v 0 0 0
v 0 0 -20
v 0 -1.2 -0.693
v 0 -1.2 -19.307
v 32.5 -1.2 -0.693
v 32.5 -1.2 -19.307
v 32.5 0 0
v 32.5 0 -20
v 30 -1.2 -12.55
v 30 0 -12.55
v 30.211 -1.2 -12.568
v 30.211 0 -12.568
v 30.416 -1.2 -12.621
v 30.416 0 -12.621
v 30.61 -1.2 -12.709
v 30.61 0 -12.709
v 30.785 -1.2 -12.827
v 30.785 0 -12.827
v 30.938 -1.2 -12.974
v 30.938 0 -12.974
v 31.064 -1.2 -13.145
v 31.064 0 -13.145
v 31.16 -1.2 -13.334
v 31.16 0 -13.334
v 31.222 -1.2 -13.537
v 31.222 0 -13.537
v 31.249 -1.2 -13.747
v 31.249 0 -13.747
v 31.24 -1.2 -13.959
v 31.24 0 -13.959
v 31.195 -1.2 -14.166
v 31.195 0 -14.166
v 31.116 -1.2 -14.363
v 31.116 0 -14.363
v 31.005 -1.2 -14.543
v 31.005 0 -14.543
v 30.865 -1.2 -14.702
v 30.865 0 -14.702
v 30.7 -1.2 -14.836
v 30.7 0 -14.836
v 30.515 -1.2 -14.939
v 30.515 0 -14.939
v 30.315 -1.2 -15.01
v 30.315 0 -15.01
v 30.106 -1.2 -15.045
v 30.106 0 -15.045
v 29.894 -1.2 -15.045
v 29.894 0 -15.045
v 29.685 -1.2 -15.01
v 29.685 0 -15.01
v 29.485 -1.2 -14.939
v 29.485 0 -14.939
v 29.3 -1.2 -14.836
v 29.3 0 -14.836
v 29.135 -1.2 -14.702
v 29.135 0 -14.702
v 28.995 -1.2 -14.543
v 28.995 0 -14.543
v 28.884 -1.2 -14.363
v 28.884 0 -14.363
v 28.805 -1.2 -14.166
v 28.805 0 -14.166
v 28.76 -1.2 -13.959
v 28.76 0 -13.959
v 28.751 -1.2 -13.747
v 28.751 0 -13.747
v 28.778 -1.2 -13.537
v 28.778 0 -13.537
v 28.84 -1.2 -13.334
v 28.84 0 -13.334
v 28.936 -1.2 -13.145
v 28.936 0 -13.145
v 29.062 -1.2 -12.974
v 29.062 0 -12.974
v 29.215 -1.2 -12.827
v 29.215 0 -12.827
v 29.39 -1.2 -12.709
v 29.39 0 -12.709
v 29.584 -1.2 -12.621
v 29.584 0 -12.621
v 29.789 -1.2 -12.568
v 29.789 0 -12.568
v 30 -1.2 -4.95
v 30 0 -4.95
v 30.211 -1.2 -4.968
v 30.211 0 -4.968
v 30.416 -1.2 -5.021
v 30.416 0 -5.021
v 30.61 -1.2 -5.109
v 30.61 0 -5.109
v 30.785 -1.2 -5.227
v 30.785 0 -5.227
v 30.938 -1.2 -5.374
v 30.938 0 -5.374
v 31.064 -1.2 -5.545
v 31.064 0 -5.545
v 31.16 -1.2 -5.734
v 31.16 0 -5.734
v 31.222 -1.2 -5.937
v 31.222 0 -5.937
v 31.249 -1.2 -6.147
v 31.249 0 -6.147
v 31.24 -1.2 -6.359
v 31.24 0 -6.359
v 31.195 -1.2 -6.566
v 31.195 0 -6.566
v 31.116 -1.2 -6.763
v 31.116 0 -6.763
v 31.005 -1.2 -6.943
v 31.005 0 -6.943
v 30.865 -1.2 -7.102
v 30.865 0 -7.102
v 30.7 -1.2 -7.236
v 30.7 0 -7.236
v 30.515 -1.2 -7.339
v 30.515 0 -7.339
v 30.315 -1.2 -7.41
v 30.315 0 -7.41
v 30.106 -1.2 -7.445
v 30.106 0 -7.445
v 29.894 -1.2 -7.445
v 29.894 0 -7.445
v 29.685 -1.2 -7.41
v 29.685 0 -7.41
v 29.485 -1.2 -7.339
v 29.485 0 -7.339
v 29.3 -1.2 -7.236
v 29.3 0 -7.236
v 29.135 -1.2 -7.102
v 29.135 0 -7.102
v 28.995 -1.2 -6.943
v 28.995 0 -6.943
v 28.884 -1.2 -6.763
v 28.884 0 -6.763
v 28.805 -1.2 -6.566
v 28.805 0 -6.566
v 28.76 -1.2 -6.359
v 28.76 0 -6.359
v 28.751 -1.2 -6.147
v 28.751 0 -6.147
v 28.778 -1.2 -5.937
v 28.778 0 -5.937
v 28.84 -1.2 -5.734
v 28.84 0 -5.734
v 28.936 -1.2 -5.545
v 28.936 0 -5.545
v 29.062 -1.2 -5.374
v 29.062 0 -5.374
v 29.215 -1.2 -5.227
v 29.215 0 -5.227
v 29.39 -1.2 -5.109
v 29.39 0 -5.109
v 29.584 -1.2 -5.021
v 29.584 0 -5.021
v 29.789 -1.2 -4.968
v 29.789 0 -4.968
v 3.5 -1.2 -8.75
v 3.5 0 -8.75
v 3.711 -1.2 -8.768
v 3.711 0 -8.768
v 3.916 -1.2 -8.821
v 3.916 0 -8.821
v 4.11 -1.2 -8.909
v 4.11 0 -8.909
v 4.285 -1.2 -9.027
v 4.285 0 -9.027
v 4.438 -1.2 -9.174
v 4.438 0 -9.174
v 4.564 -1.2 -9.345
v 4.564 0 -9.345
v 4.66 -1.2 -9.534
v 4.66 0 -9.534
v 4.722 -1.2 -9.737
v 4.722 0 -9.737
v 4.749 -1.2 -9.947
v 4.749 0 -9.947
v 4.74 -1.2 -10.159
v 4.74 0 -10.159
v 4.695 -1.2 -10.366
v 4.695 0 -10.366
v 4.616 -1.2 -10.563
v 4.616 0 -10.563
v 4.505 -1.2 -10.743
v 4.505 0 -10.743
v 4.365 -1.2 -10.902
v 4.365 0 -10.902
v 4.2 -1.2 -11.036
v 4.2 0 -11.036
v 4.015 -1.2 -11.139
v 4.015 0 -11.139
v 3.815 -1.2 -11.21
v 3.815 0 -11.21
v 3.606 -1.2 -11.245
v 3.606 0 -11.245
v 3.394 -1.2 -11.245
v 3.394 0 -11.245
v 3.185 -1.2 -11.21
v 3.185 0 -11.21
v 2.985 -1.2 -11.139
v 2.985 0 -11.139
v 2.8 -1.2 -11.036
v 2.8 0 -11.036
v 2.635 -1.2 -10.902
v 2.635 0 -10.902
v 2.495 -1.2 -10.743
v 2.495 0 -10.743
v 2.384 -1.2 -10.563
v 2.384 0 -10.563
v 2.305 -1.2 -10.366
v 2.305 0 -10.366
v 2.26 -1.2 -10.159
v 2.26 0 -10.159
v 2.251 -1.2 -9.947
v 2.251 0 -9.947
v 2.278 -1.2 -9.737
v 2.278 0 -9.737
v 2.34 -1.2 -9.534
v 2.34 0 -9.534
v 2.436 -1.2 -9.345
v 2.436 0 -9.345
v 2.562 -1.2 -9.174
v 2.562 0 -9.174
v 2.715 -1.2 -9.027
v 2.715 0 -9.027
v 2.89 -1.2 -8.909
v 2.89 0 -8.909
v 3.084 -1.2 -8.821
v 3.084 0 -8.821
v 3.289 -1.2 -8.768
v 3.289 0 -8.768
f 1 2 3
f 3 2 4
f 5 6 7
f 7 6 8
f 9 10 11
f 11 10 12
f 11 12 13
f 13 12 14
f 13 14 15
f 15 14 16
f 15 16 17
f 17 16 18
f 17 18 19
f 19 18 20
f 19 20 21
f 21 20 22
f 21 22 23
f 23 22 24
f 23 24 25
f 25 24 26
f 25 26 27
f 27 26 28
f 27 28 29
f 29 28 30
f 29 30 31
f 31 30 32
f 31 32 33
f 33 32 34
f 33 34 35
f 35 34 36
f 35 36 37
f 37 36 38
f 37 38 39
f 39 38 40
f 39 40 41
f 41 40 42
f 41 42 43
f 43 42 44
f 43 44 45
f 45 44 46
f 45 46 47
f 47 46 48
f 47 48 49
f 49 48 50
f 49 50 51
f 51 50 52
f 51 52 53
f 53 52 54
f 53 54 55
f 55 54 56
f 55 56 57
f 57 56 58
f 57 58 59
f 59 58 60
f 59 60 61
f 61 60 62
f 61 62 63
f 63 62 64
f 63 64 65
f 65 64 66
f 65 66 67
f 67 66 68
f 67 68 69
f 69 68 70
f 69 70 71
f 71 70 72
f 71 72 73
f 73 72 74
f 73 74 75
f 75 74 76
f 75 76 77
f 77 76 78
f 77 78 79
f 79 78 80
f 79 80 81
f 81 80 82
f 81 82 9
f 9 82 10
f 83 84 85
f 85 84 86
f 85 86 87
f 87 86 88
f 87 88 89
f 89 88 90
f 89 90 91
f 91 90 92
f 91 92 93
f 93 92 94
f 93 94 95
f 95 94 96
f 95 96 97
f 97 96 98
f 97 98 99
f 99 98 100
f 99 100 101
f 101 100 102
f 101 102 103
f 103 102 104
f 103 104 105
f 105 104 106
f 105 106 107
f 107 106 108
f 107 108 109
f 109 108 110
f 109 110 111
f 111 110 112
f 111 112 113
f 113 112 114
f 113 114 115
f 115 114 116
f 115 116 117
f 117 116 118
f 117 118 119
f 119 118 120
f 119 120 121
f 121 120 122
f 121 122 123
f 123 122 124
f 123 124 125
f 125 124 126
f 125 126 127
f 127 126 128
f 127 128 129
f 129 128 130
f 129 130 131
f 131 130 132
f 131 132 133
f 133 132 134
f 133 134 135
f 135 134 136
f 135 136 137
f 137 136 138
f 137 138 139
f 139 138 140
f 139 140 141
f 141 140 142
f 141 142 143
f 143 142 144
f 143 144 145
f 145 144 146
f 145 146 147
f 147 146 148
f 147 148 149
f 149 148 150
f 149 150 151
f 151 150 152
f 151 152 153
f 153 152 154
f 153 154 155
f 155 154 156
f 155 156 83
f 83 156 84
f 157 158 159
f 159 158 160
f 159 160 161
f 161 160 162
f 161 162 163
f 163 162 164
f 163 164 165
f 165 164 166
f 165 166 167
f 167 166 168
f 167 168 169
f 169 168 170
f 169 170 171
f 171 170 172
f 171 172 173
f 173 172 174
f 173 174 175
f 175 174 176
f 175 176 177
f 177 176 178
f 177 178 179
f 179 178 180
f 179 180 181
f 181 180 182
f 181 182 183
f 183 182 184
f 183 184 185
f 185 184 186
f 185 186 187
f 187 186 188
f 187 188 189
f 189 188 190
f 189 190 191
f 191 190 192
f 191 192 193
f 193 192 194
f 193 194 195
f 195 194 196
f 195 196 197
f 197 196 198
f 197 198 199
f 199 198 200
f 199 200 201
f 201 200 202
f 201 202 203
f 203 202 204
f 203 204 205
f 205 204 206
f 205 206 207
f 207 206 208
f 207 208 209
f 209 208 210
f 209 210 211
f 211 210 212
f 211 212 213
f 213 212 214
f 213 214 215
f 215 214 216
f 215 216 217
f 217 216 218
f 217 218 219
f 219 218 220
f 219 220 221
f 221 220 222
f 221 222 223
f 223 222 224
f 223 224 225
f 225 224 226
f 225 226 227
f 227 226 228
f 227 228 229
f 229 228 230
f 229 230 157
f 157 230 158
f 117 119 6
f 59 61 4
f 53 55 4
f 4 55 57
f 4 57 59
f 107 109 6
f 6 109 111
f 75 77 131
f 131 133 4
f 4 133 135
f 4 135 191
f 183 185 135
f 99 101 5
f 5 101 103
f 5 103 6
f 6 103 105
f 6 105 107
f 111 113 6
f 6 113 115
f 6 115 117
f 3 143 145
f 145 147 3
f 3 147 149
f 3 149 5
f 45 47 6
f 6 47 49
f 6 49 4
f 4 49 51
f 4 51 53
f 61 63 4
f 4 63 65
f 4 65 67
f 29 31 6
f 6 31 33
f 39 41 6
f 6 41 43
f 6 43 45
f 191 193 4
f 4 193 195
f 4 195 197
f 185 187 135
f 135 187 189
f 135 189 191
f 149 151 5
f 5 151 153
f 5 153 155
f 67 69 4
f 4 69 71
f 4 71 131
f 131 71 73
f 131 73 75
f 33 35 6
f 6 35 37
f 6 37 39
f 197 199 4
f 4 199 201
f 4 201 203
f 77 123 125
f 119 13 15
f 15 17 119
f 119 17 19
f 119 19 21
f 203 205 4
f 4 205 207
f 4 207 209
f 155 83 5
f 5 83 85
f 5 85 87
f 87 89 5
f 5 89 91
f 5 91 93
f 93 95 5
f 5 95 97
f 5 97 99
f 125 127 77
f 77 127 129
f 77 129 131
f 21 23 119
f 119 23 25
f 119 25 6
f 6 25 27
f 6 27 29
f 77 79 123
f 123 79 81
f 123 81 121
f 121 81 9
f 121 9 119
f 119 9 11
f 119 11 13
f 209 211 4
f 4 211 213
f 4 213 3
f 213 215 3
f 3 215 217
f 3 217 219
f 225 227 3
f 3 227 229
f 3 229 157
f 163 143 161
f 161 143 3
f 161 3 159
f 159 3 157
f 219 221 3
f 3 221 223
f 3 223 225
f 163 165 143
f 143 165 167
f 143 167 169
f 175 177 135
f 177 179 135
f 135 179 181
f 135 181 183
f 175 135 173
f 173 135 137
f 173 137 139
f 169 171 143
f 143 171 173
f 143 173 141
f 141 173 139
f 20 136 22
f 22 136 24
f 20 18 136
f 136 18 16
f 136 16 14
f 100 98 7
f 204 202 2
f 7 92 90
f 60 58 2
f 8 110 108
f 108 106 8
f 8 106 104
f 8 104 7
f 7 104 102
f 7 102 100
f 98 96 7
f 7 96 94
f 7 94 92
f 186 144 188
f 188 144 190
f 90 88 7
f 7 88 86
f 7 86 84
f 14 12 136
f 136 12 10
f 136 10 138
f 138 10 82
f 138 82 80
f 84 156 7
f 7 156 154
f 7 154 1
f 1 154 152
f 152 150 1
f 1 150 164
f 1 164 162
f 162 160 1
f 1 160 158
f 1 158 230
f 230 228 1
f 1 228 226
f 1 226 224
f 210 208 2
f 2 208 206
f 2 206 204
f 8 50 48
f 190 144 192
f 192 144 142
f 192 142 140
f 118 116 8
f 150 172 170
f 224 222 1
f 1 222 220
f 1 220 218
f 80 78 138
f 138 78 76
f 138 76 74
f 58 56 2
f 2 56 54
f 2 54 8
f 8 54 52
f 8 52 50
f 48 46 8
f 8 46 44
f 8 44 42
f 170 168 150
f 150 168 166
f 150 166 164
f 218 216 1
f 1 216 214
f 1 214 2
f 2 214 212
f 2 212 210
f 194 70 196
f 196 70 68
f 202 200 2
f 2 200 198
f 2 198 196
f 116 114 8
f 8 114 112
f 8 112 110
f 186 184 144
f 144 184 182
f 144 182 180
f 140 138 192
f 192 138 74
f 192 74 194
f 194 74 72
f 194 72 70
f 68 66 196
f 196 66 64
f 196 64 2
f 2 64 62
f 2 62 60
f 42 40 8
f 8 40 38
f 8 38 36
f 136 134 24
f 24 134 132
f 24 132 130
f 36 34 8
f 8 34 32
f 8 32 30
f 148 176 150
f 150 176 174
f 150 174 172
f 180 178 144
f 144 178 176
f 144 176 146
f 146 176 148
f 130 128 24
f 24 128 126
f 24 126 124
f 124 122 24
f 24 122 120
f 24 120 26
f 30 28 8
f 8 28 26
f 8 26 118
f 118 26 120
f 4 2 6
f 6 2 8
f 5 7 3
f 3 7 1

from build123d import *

# Parameters (mm, degrees)
SKETCH1_W           = 32.5
SKETCH1_H           = 20
SKETCH1_R           = 1.25
BOSS_EXTRUDE1_DEPTH = 1.2
CHAMFER1_SIZE       = 1.2
CHAMFER1_SIZE_2     = 0.692820323
CHAMFER2_SIZE       = 1.2
CHAMFER2_SIZE_2     = 0.692820323


with BuildPart() as part:
    # Sketch1 → Boss-Extrude1 (new body)
    with BuildSketch(Plane(origin=(0, 0, 0), x_dir=(1, 0, 0), z_dir=(0, 1, 0))):
        with Locations((16.25, 10)):
            Rectangle(SKETCH1_W, SKETCH1_H)
        with Locations(Location((30, 6.2, 0), (0, 0, 270))):
            Circle(SKETCH1_R, mode=Mode.SUBTRACT)
        with Locations(Location((30, 13.8, 0), (0, 0, 270))):
            Circle(SKETCH1_R, mode=Mode.SUBTRACT)
        with Locations(Location((3.5, 10, 0), (0, 0, 270))):
            Circle(SKETCH1_R, mode=Mode.SUBTRACT)
    extrude(amount=-BOSS_EXTRUDE1_DEPTH)

    # Chamfer1
    # the kernel refuses this chamfer: 1.2, 0.692820323 mm, written as the material it takes off along each edge
    with BuildSketch(Plane(origin=(35.604502906, -1.2, -20), x_dir=(0, 0.9998132206222078, -0.019326765612701437), z_dir=(-1, 0, 0))) as chamfer1_piece_1:
        Polygon((CHAMFER1_SIZE * 0.999813220622, -CHAMFER1_SIZE * 0.0193267656127), (-CHAMFER1_SIZE_2 * 0.0193267656135, -CHAMFER1_SIZE_2 * 0.999813220662), (0, 0), align=None)
    extrude(amount=38.709005811, mode=Mode.SUBTRACT)

    # Chamfer2
    # the kernel refuses this chamfer: 1.2, 0.692820323 mm, written as the material it takes off along each edge
    with BuildSketch(Plane(origin=(-3.104502906, -1.2, 0), x_dir=(0, 0.999813220622208, 0.01932676561270074), z_dir=(1, 0, 0))) as chamfer2_piece_1:
        Polygon((CHAMFER2_SIZE * 0.999813220622, -CHAMFER2_SIZE * 0.0193267656127), (-CHAMFER2_SIZE_2 * 0.0193267656135, -CHAMFER2_SIZE_2 * 0.999813220662), (0, 0), align=None)
    extrude(amount=38.709005811, mode=Mode.SUBTRACT)


solid = part.part
